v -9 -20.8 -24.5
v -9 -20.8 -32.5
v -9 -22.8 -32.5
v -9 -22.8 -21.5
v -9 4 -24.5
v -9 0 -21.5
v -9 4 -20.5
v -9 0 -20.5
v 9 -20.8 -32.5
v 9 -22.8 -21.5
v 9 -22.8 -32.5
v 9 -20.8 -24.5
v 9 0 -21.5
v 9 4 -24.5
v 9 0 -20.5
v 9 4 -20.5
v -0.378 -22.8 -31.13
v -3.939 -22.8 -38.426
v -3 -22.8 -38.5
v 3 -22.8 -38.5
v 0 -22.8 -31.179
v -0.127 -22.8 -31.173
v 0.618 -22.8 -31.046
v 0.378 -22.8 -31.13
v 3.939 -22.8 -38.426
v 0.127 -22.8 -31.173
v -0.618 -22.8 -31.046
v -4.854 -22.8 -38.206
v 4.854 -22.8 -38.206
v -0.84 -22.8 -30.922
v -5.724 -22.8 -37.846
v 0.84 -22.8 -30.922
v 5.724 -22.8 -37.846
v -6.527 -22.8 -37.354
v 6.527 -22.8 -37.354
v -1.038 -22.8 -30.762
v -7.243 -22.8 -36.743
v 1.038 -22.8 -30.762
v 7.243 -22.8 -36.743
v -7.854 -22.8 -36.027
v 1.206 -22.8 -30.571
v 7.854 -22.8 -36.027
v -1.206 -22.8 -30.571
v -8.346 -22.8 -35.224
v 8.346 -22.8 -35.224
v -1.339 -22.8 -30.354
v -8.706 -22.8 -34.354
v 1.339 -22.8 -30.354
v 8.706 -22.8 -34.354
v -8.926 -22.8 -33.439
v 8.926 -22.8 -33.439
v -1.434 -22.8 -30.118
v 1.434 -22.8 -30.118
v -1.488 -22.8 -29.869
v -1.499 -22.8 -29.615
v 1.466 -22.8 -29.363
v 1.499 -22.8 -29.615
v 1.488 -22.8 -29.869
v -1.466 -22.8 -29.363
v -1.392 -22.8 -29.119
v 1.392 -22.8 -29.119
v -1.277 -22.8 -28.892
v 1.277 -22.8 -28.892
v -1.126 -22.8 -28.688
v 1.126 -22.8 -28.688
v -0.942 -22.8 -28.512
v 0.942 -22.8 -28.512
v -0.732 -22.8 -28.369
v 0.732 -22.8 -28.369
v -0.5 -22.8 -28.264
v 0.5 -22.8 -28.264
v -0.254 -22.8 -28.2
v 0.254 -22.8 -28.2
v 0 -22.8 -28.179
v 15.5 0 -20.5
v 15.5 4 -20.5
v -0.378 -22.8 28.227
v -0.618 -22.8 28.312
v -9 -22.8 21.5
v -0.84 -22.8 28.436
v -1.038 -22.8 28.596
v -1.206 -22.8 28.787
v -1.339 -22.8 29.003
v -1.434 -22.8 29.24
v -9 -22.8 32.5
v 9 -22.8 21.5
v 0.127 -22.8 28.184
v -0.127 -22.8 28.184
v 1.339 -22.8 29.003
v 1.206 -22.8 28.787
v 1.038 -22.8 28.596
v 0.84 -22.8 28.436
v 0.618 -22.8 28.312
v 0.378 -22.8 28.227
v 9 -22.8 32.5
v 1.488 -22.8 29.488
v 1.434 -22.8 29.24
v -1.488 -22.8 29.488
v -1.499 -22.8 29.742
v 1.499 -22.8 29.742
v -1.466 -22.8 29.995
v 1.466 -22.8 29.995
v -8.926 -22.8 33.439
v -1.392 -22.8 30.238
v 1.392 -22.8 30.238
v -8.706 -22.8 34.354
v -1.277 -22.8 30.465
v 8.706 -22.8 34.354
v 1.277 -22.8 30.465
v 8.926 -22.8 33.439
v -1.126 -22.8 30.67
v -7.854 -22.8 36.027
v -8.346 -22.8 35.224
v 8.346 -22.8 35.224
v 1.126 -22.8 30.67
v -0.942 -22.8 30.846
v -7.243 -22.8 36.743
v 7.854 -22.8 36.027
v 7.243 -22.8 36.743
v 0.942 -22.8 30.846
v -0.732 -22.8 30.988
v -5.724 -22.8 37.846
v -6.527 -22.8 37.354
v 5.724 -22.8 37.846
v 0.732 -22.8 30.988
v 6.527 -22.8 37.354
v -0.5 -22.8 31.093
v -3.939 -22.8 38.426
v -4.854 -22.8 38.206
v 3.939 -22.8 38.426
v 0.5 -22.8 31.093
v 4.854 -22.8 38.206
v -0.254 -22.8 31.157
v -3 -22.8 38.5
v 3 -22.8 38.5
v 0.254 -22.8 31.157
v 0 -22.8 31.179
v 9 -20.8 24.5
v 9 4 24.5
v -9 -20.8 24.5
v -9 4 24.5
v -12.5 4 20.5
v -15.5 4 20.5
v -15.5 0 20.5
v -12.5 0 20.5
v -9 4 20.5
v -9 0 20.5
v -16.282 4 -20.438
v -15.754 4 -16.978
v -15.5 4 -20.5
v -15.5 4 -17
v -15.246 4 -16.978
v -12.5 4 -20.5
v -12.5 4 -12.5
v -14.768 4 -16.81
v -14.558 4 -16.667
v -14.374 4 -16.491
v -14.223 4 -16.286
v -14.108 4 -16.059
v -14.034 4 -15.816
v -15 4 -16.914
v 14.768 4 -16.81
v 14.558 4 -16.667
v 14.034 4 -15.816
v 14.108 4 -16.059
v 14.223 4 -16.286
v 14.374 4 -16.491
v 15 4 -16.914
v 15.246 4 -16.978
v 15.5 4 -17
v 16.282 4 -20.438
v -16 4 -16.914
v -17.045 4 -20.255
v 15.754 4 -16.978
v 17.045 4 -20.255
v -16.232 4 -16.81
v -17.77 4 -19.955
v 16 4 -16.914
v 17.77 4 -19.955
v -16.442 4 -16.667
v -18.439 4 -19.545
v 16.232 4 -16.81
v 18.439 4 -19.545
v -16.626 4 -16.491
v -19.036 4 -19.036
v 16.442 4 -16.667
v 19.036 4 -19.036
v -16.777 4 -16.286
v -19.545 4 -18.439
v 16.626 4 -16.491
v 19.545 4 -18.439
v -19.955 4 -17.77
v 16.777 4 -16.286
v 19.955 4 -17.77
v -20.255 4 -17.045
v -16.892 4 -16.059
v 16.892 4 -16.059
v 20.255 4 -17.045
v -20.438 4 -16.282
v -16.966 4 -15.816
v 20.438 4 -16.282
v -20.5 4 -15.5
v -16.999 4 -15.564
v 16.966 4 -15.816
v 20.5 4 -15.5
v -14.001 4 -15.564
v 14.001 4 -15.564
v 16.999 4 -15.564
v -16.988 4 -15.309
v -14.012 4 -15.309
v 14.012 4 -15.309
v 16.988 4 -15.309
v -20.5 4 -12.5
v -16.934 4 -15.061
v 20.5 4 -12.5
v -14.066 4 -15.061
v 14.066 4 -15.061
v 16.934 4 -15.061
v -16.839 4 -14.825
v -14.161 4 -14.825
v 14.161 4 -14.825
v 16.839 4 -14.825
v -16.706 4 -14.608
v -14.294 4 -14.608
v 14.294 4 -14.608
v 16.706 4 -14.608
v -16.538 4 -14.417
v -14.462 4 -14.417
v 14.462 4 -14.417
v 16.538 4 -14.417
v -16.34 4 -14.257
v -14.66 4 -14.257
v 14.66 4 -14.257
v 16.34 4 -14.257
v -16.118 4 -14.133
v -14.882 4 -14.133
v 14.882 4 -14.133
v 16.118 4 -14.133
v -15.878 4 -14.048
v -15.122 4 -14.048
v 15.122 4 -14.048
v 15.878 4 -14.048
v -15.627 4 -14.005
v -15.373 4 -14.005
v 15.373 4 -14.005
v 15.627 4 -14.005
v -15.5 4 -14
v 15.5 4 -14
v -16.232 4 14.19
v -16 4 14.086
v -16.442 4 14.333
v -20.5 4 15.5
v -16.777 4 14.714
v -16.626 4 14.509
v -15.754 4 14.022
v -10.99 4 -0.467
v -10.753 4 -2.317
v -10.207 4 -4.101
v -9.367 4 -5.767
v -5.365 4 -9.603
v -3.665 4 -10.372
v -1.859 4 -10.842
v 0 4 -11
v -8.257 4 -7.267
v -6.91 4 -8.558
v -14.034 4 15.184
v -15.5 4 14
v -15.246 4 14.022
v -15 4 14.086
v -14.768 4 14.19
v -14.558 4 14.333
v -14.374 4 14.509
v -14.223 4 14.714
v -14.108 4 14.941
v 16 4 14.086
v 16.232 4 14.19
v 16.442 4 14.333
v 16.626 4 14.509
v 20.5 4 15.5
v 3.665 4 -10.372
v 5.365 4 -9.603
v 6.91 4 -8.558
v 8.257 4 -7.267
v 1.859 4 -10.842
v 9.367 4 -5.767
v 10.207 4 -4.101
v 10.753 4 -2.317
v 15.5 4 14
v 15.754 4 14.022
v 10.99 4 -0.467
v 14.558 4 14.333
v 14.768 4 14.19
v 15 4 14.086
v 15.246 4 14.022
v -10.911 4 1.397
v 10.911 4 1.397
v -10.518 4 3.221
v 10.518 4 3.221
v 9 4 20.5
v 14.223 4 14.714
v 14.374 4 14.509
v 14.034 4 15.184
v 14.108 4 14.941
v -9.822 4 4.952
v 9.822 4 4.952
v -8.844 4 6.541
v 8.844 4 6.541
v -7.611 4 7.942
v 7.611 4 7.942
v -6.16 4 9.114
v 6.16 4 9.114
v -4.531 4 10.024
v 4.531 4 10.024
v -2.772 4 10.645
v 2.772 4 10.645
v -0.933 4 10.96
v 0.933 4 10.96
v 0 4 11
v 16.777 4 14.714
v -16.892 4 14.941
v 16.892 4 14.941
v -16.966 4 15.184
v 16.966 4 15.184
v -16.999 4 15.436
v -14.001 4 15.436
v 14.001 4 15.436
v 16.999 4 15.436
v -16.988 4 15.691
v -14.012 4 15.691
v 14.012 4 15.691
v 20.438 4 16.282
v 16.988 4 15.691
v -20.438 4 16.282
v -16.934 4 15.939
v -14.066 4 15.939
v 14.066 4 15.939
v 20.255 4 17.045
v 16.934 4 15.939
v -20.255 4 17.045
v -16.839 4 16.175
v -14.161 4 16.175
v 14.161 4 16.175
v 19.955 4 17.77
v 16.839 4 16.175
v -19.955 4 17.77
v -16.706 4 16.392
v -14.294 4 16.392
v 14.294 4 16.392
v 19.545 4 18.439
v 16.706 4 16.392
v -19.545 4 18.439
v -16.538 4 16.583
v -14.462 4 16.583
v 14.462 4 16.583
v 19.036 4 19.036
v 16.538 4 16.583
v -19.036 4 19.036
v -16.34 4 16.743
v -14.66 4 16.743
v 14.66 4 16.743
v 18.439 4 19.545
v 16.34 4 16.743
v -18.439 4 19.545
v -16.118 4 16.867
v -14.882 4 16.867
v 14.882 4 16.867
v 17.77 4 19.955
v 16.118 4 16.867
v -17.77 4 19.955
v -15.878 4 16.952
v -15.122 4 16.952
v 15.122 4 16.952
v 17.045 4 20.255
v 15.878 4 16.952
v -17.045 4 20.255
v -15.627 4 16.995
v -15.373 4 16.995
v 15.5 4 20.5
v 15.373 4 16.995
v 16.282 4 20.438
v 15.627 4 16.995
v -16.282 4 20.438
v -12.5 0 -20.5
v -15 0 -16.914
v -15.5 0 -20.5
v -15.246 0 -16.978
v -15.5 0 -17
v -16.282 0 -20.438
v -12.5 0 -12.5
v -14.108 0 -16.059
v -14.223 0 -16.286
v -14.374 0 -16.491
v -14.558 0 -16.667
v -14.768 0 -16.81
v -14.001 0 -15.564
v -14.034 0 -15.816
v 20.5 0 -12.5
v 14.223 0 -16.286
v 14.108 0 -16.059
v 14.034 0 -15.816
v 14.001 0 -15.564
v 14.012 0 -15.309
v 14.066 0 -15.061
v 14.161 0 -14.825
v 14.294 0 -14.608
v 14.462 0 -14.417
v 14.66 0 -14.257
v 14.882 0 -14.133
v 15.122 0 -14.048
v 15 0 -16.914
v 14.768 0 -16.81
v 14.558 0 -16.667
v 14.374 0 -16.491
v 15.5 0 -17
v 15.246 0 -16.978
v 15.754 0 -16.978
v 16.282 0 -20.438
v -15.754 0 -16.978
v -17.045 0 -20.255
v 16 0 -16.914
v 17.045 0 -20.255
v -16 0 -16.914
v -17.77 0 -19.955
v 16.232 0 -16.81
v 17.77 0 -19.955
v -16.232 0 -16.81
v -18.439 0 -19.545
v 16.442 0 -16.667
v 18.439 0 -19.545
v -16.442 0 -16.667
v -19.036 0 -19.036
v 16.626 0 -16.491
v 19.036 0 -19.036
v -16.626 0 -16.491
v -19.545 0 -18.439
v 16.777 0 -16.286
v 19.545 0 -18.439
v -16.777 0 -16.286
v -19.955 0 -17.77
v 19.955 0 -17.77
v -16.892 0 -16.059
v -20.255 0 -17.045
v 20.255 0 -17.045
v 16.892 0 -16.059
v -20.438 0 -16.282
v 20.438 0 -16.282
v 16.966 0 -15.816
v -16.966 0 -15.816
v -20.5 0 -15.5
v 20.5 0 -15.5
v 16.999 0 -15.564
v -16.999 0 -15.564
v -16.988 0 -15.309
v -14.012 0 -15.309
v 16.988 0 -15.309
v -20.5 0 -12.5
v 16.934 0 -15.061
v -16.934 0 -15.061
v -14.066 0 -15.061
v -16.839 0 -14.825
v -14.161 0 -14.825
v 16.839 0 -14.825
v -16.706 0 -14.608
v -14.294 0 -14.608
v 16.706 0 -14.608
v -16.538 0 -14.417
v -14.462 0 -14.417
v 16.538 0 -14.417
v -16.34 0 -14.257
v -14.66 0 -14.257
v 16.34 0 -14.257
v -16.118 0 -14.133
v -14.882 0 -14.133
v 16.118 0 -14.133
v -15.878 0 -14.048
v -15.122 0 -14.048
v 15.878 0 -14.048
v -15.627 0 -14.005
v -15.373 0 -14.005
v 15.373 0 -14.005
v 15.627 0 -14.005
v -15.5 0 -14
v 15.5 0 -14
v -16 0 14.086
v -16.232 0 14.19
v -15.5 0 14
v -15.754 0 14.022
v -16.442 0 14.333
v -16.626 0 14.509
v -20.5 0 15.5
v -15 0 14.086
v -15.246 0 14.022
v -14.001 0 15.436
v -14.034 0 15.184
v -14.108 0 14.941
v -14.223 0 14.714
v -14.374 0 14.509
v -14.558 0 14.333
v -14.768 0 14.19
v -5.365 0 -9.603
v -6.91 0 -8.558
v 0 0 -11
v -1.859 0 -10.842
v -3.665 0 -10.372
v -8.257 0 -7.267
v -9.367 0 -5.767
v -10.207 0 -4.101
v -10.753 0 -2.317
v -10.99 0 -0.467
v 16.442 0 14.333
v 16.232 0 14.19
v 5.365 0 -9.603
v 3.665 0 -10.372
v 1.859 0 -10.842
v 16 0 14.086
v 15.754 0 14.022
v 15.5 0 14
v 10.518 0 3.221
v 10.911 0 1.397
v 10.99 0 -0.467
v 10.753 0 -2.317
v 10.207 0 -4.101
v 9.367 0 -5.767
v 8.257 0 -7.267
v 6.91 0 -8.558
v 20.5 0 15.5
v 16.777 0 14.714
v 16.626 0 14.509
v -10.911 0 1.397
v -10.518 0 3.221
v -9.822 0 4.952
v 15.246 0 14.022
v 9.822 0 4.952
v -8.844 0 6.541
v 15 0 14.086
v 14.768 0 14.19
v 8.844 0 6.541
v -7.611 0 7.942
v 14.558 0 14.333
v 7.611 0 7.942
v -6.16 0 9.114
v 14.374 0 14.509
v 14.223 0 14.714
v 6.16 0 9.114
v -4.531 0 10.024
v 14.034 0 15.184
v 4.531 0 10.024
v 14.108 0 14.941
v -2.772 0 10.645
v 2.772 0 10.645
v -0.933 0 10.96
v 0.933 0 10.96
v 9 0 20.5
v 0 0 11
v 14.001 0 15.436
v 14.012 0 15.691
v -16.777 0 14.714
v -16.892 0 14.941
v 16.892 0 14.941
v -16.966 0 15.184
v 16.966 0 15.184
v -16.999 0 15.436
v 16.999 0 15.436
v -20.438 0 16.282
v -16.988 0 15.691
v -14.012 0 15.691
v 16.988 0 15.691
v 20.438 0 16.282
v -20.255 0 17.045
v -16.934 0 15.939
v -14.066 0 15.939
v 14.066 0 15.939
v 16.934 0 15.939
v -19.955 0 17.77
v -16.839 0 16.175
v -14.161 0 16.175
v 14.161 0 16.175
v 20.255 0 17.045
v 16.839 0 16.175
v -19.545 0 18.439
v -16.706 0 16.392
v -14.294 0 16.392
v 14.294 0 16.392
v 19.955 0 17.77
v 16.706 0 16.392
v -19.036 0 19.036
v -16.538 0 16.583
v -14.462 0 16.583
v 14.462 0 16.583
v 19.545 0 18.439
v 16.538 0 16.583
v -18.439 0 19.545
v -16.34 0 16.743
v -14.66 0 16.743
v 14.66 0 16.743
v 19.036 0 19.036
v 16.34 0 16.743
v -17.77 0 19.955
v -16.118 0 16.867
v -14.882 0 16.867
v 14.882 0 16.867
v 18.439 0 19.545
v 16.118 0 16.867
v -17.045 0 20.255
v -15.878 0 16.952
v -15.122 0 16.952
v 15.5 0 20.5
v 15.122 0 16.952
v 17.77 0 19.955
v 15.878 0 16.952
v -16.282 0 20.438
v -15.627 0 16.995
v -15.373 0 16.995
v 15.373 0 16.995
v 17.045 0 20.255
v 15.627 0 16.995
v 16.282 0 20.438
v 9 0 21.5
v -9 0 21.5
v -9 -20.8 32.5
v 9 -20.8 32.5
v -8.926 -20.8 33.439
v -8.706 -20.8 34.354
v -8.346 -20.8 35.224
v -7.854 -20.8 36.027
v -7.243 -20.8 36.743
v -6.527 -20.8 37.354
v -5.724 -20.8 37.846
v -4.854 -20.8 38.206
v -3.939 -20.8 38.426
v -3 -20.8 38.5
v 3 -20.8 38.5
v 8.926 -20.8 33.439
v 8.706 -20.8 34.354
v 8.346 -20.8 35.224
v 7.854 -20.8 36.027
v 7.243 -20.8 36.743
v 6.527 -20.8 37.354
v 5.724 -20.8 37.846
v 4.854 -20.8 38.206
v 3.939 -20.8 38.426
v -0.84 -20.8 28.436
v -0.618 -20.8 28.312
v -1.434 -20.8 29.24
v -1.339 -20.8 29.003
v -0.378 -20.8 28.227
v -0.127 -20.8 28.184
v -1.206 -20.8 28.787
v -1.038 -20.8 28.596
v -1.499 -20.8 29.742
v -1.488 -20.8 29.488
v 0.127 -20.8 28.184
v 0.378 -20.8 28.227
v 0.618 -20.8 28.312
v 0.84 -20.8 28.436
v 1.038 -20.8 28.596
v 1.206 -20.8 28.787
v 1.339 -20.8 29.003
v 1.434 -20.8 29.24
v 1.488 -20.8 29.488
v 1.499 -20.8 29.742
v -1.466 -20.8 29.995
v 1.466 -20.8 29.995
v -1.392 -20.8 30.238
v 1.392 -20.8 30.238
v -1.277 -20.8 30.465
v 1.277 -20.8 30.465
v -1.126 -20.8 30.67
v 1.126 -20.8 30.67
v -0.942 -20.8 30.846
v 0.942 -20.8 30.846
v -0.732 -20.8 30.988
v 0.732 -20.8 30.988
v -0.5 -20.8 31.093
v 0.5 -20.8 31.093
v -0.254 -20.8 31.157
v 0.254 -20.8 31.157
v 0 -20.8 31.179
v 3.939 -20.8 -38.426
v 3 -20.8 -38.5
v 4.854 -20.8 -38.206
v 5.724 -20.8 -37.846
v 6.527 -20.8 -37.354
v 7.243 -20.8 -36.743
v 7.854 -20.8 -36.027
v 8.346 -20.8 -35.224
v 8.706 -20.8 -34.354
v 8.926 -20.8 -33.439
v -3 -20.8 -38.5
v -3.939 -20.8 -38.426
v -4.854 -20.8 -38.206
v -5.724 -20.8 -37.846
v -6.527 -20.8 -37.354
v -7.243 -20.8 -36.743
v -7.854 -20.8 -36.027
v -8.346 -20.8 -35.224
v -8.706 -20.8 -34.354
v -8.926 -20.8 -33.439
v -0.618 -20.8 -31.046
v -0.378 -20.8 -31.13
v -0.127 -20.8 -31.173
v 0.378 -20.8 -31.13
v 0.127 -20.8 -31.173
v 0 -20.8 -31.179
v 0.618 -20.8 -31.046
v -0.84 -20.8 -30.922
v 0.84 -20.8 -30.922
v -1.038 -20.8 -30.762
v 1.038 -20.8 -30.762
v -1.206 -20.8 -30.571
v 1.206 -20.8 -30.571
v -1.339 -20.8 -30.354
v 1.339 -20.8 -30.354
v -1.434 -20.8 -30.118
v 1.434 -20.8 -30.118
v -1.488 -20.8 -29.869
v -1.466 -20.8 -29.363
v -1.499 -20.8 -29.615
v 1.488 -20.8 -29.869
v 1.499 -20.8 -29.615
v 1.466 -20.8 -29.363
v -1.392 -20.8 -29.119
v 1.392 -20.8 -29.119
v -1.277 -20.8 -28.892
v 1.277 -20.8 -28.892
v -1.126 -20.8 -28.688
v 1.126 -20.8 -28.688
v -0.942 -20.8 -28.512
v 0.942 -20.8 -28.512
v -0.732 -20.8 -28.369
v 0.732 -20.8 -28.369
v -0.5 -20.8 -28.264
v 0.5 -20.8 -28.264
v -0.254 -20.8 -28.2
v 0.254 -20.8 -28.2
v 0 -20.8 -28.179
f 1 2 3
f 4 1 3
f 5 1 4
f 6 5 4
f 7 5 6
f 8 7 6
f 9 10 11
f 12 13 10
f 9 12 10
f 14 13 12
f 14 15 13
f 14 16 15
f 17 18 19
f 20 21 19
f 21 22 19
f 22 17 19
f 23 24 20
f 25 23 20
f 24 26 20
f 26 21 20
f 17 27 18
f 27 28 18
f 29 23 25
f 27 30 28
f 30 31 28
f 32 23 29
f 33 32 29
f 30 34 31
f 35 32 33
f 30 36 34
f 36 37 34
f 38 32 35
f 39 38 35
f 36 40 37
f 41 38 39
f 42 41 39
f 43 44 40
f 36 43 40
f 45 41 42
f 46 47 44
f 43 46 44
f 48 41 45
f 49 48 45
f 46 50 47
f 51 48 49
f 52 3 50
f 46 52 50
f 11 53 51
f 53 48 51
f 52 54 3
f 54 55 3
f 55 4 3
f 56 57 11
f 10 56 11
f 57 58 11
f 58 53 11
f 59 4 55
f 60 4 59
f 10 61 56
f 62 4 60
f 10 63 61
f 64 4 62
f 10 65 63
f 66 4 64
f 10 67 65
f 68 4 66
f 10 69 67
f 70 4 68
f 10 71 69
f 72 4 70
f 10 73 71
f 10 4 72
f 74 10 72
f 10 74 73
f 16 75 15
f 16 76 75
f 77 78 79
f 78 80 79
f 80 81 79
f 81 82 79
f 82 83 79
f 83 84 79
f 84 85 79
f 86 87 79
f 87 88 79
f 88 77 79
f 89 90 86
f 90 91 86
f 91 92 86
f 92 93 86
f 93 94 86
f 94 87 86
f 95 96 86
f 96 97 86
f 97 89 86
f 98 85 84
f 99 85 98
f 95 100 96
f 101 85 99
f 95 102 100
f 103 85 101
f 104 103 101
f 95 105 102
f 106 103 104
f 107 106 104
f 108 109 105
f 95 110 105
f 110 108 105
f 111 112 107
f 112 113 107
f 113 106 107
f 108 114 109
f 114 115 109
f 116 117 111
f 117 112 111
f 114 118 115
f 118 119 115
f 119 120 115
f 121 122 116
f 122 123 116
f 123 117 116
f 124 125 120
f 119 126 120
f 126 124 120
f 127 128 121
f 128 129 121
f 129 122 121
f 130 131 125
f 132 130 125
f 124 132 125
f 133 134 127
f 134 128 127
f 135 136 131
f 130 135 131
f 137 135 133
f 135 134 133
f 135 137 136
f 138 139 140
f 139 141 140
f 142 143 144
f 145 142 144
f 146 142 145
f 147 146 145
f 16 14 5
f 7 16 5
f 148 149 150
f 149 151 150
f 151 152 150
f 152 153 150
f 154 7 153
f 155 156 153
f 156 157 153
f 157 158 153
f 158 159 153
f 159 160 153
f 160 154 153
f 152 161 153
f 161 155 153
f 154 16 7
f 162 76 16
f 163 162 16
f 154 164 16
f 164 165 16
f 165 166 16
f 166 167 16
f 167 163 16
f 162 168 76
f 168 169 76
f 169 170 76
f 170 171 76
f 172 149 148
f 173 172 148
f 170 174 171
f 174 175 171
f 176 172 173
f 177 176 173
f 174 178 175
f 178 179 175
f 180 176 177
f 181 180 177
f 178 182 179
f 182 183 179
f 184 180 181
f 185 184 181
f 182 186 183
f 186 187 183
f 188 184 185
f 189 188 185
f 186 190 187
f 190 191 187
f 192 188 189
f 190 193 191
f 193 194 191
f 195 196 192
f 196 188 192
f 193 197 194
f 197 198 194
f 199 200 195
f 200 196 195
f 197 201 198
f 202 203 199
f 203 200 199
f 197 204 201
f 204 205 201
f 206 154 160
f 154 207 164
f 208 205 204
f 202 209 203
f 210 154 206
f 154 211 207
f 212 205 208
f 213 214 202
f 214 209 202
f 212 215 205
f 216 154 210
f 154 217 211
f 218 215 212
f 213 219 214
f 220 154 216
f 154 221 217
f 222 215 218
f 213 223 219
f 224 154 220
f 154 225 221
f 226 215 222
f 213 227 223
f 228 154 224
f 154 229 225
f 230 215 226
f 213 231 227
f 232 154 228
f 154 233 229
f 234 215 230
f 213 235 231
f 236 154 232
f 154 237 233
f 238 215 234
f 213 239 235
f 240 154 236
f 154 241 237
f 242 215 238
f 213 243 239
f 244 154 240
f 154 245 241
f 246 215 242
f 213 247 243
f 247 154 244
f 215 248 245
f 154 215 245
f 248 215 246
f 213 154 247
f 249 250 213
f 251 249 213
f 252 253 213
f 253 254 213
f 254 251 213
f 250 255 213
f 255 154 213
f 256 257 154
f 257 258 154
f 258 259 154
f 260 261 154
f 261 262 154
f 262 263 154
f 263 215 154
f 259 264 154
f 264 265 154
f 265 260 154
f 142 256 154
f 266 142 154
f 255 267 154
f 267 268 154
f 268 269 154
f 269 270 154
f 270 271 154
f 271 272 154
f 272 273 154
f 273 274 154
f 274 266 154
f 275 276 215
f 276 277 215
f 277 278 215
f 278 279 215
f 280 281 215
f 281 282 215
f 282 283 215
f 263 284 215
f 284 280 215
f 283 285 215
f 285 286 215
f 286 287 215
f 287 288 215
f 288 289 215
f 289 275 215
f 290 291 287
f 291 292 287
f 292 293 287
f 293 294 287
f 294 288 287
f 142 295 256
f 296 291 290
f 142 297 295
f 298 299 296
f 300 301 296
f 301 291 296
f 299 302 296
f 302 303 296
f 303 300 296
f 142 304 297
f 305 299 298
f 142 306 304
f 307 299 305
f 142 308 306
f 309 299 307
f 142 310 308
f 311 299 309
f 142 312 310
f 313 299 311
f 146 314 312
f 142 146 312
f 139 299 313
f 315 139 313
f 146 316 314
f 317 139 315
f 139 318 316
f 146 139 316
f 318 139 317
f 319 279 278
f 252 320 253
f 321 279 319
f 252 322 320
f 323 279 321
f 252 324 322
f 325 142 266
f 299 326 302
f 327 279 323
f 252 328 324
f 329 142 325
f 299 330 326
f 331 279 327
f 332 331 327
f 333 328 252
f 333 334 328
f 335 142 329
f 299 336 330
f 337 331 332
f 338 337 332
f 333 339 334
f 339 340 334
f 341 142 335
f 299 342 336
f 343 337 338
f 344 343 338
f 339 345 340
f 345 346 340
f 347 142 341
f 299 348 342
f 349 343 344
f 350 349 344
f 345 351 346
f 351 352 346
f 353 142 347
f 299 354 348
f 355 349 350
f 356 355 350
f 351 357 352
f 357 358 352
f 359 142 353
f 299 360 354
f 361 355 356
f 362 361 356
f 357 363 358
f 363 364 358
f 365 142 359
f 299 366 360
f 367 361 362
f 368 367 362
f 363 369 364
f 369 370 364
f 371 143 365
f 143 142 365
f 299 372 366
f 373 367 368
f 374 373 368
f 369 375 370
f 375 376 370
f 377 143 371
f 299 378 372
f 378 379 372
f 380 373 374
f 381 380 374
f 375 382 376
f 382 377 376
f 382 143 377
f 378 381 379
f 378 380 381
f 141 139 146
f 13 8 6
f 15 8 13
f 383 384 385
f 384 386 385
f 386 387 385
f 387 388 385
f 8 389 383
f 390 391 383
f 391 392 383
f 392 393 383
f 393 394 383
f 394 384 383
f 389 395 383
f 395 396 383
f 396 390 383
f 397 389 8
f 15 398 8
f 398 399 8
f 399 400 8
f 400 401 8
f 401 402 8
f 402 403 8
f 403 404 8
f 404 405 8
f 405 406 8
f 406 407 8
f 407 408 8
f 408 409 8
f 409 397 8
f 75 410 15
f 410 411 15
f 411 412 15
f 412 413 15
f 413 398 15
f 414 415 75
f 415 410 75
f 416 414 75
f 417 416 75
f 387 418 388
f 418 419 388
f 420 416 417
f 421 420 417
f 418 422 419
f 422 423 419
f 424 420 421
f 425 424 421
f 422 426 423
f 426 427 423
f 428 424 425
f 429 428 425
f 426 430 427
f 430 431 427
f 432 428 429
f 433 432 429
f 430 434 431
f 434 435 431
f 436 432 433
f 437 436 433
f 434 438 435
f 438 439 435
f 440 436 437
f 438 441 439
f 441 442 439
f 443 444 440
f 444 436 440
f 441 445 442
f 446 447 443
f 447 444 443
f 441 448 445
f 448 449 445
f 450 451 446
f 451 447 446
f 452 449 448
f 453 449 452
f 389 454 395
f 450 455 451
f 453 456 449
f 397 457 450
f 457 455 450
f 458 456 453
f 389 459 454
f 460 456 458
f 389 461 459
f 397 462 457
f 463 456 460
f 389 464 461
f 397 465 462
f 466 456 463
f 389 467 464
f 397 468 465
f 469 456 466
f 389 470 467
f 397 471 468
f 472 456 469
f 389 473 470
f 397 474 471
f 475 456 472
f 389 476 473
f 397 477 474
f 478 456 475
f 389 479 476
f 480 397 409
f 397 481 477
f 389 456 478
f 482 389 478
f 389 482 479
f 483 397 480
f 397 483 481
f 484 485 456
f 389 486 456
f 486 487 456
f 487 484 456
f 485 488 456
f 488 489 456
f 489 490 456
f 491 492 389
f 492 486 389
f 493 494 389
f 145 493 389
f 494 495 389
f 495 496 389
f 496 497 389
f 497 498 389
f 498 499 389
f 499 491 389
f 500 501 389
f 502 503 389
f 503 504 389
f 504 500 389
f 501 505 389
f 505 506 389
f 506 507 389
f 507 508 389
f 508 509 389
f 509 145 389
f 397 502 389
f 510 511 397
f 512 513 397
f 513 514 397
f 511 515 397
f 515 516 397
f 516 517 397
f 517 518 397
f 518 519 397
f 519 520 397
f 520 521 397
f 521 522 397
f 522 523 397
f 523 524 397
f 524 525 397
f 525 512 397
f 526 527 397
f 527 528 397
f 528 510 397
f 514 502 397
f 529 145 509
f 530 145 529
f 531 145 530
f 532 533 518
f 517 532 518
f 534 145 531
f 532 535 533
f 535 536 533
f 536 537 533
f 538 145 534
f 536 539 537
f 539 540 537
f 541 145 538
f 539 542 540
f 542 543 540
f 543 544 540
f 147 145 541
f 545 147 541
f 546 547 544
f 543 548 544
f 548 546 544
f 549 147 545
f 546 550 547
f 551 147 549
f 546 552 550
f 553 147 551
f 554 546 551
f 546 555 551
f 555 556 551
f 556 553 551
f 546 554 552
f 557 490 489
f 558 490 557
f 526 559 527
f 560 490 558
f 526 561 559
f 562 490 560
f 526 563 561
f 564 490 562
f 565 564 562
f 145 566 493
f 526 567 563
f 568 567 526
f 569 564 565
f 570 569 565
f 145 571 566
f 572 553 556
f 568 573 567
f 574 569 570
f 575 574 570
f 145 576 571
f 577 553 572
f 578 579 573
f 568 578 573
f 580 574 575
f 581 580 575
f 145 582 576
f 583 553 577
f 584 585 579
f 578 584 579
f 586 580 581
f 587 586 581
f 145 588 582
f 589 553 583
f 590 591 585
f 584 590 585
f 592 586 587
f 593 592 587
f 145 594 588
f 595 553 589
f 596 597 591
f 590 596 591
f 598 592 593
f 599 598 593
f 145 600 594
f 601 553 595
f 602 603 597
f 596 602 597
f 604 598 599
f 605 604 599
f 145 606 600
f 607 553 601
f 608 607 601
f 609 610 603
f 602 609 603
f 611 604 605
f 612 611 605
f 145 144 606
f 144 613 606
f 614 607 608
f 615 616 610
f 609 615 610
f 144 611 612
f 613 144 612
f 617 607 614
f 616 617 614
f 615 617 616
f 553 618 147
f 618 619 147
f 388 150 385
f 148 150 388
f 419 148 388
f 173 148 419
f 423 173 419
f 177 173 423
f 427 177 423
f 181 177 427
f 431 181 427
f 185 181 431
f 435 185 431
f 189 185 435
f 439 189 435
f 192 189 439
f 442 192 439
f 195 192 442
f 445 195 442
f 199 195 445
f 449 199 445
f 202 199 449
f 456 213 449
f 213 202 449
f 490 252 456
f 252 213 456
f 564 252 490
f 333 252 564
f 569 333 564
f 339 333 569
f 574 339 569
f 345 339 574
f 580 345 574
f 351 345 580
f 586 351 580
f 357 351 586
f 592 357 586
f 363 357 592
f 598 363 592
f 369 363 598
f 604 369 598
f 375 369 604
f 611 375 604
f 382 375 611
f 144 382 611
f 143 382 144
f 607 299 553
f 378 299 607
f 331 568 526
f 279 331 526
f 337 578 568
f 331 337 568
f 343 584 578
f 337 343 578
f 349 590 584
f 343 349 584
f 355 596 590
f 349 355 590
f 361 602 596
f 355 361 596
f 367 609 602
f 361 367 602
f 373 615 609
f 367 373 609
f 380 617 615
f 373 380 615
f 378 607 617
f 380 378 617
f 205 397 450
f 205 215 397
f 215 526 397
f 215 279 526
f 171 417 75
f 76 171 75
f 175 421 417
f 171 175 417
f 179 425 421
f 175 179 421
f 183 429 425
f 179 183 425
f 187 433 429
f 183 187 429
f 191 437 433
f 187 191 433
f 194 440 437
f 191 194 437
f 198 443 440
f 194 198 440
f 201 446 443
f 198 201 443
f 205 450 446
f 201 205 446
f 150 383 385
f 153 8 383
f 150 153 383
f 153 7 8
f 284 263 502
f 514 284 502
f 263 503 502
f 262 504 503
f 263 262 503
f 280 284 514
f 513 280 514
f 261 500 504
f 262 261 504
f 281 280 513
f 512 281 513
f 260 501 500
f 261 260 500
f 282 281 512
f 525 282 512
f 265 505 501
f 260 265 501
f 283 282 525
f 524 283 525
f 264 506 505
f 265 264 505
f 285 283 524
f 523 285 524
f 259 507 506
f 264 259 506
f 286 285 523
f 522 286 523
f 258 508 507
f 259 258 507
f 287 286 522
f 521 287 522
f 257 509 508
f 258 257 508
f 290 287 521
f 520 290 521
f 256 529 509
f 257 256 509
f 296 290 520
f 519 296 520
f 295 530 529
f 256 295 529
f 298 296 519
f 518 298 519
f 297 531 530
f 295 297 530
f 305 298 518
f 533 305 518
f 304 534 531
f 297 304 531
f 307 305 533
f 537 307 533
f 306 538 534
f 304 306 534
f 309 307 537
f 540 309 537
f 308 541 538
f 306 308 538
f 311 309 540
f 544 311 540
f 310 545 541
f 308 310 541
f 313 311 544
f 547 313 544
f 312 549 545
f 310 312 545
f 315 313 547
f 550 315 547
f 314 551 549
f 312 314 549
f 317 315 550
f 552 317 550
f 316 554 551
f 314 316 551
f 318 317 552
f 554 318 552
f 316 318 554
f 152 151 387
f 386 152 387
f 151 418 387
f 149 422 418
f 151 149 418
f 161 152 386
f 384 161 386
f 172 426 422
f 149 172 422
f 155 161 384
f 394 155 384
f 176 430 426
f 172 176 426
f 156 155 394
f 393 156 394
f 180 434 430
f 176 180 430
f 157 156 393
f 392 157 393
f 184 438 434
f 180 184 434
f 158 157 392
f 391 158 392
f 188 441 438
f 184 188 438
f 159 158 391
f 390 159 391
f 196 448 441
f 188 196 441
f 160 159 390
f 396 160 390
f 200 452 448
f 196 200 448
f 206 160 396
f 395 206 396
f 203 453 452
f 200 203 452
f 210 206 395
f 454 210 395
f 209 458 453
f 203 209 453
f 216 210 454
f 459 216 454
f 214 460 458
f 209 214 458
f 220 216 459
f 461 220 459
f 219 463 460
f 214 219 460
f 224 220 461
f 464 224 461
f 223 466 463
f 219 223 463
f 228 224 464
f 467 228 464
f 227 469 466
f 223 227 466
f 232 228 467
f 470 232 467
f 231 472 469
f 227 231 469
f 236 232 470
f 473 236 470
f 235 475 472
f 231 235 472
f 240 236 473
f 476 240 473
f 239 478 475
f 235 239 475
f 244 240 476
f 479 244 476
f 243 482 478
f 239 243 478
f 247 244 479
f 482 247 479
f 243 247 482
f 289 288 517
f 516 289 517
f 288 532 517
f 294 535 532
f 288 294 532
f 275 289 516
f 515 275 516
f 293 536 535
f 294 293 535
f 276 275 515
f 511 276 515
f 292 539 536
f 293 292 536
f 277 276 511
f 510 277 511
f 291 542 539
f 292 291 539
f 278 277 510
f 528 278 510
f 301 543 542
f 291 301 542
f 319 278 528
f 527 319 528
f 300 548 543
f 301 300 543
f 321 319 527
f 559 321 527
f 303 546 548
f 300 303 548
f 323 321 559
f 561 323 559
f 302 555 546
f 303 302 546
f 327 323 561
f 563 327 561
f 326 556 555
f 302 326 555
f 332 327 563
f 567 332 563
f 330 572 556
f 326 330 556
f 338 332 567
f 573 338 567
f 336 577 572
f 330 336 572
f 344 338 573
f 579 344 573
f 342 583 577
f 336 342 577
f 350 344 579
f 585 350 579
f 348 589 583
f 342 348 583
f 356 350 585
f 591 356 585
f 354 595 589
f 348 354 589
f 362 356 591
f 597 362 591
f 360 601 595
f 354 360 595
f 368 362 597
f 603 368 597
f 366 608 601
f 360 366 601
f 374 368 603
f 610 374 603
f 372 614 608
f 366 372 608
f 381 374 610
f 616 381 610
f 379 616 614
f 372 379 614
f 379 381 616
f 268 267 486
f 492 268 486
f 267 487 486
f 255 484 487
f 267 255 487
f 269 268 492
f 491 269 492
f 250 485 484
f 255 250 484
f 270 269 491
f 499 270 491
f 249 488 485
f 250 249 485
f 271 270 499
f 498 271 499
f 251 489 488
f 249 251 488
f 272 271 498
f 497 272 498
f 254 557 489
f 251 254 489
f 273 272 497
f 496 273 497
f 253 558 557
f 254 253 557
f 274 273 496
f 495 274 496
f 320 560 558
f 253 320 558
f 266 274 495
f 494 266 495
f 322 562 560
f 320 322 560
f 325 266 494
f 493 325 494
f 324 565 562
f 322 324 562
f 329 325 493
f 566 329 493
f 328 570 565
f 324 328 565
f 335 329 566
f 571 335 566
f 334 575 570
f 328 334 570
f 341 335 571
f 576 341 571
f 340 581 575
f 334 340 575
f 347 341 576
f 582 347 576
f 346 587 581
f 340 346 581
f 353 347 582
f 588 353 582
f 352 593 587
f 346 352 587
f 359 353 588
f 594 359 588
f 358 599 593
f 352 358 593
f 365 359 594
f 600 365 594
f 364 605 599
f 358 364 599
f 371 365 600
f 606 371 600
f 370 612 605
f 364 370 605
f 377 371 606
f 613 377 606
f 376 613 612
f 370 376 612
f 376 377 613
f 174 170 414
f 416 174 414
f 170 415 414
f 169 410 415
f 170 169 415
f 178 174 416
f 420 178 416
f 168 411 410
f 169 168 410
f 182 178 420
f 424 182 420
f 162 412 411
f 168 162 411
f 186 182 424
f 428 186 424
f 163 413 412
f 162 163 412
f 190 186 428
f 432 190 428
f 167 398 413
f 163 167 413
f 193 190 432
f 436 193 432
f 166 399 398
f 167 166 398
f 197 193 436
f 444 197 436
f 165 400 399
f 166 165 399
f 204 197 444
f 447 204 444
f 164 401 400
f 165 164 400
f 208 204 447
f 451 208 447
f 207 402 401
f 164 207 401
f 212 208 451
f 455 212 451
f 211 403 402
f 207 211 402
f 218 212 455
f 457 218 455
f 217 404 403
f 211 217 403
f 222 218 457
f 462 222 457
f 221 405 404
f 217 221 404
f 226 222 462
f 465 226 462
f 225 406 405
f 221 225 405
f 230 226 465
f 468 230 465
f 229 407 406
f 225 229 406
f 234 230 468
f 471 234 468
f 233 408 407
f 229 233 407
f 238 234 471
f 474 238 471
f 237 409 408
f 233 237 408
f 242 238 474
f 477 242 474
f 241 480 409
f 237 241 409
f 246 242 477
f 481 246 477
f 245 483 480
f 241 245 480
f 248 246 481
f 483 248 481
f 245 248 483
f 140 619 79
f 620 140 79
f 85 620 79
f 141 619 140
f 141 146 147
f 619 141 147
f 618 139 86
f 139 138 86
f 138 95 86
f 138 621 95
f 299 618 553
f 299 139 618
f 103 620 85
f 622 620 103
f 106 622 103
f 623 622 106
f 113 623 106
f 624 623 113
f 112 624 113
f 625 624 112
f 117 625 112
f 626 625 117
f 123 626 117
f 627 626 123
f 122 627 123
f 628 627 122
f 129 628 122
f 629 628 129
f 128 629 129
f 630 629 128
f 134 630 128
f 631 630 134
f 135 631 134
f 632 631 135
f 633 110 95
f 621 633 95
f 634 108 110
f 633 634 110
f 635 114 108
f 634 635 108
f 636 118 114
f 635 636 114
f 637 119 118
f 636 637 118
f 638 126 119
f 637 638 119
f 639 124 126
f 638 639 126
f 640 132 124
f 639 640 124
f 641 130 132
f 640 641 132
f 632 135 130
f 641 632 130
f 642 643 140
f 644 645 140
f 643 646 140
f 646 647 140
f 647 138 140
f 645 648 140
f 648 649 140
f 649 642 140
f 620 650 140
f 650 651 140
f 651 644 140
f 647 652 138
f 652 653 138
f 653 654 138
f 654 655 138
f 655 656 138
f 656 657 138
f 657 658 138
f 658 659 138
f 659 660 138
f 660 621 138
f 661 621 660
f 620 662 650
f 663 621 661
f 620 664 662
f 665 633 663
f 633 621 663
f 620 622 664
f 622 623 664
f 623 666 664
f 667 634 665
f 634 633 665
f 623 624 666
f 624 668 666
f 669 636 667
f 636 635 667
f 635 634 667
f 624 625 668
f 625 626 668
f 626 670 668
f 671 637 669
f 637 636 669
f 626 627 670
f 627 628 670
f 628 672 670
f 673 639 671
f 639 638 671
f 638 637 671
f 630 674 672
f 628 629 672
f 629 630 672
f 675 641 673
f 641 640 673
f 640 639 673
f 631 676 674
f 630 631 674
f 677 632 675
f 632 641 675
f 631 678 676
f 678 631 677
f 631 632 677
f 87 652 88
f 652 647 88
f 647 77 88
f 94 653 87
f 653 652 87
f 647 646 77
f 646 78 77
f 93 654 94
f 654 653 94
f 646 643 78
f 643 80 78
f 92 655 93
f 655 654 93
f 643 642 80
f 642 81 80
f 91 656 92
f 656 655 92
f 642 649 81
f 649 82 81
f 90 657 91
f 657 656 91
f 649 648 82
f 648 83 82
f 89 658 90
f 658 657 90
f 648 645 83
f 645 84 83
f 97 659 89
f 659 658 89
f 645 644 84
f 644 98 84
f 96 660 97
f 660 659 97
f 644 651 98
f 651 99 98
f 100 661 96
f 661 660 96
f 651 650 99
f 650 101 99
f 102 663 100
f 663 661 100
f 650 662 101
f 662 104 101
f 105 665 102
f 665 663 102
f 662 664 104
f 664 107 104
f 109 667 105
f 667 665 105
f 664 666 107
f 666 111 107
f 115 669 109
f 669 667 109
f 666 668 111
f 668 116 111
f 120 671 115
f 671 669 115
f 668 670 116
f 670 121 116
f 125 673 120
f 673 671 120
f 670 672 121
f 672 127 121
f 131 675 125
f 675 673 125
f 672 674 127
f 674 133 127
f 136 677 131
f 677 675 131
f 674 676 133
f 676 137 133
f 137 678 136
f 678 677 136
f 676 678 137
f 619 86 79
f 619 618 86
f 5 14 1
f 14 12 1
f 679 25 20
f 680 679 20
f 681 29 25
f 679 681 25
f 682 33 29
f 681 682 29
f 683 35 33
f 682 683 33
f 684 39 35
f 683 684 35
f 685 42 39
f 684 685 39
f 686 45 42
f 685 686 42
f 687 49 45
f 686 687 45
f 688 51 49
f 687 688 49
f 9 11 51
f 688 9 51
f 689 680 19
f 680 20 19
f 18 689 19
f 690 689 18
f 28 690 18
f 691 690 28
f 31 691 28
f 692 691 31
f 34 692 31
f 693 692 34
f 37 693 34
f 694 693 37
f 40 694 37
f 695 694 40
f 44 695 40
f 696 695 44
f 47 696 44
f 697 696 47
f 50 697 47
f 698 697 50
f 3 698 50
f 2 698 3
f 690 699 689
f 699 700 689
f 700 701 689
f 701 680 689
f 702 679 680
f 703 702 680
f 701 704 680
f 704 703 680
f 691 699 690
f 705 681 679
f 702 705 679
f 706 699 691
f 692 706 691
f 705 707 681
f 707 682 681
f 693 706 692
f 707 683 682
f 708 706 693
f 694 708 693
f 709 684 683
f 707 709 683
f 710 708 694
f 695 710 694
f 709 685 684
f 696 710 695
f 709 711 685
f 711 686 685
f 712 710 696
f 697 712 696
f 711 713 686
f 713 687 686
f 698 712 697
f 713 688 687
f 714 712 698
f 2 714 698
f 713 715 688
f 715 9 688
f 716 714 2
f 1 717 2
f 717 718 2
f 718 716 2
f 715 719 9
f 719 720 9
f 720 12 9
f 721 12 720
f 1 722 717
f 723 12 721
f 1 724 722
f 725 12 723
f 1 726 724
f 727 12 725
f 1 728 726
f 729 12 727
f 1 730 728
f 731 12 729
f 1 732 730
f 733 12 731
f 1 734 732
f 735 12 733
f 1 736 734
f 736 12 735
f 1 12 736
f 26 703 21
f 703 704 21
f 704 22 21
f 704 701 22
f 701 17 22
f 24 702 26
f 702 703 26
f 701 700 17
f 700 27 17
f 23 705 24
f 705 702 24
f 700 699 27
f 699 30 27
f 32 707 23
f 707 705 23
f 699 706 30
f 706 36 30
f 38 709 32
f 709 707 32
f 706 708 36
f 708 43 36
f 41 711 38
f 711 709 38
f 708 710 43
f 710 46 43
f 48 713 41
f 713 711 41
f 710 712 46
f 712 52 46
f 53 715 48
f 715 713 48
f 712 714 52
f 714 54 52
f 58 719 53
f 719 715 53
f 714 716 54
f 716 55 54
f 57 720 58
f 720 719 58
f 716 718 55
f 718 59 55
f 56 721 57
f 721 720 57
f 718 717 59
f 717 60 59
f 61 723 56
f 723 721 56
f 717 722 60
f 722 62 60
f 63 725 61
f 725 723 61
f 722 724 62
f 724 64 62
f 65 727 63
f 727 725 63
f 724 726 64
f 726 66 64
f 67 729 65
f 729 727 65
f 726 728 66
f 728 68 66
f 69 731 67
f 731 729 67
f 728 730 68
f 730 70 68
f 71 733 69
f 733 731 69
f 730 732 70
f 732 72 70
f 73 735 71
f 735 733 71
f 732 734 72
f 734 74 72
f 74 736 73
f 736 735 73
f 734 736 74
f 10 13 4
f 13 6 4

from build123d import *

# Parameters (mm, degrees)
SKETCH_2_R             = 11
SKETCH_2_R_2           = 1.5
EXTRUDE_483_DEPTH      = 4
SKETCH_3_W             = 18
SKETCH_3_H             = 26.8
EXTRUDE_726_DEPTH      = 4
EXTRUDE_922_DEPTH      = 2
SKETCH_5_R             = 1.5
CUT_EXTRUDE_1097_DEPTH = 51.175093423
SKETCH_7_W             = 18
SKETCH_7_H             = 22.8
CUT_EXTRUDE_1_DEPTH    = 1


with BuildPart() as part:
    # Эскиз2 → Extrude 483 (new body)
    with BuildSketch(Plane(origin=(0, 0, 0), x_dir=(1, 0, 0), z_dir=(0, 1, 0))):
        with BuildLine():
            Line((-15.5, -20.5), (15.5, -20.5))
            ThreePointArc((15.5, -20.5), (19.035533906, -19.035533906), (20.5, -15.5))
            Line((20.5, -15.5), (20.5, 15.5))
            ThreePointArc((20.5, 15.5), (19.035533906, 19.035533906), (15.5, 20.5))
            Line((15.5, 20.5), (-15.5, 20.5))
            ThreePointArc((-15.5, 20.5), (-19.035533906, 19.035533906), (-20.5, 15.5))
            Line((-20.5, 15.5), (-20.5, -15.5))
            ThreePointArc((-20.5, -15.5), (-19.035533906, -19.035533906), (-15.5, -20.5))
        make_face()
        with Locations(Location((0, 0, 0), (0, 0, 270))):
            Circle(SKETCH_2_R, mode=Mode.SUBTRACT)
        with Locations(Location((-15.5, 15.5, 0), (0, 0, 270))):
            Circle(SKETCH_2_R_2, mode=Mode.SUBTRACT)
        with Locations(Location((15.5, -15.5, 0), (0, 0, 90))):
            Circle(SKETCH_2_R_2, mode=Mode.SUBTRACT)
        with Locations(Location((-15.5, -15.5, 0), (0, 0, 90))):
            Circle(SKETCH_2_R_2, mode=Mode.SUBTRACT)
        with Locations(Location((15.5, 15.5, 0), (0, 0, 270))):
            Circle(SKETCH_2_R_2, mode=Mode.SUBTRACT)
    extrude(amount=EXTRUDE_483_DEPTH)

    # Эскиз3 → Extrude 726 (add)
    with BuildSketch(Plane.XY.offset(20.5)):
        with Locations((0, -9.4)):
            Rectangle(SKETCH_3_W, SKETCH_3_H)
    extrude_726 = extrude(amount=EXTRUDE_726_DEPTH)

    # Эскиз4 → Extrude 922 (add)
    with BuildSketch(Plane.XZ.offset(22.8)):
        with BuildLine():
            Line((9, 24.5), (-9, 24.5))
            Line((-9, 24.5), (-9, 32.5))
            ThreePointArc((-9, 32.5), (-7.242640687, 36.742640687), (-3, 38.5))
            Line((-3, 38.5), (3, 38.5))
            ThreePointArc((3, 38.5), (7.242640687, 36.742640687), (9, 32.5))
            Line((9, 32.5), (9, 24.5))
        make_face()
    extrude_922 = extrude(amount=-EXTRUDE_922_DEPTH)

    # Эскиз5 → Cut-Extrude 1097 (cut, through all)
    with BuildSketch(Plane(origin=(0, -20.8, 0), x_dir=(1, 0, 0), z_dir=(0, 1, 0))):
        with Locations(Location((0, -29.678729535, 0), (0, 0, 270))):
            Circle(SKETCH_5_R)
    cut_extrude_1097 = extrude(amount=-CUT_EXTRUDE_1097_DEPTH, mode=Mode.SUBTRACT)

    # Эскиз7 → Вырез-Вытянуть1 (cut)
    with BuildSketch(Plane(origin=(0, 0, 20.5), x_dir=(-1, 0, 0), z_dir=(0, 0, -1))):
        with Locations((0, -11.4)):
            Rectangle(SKETCH_7_W, SKETCH_7_H)
    cut_extrude_1 = extrude(amount=-CUT_EXTRUDE_1_DEPTH, mode=Mode.SUBTRACT)

    # Зеркальное отражение1: Extrude 726, Extrude 922, Cut-Extrude 1097, Вырез-Вытянуть1 across plane
    add(extrude_726.mirror(Plane.XY))
    add(extrude_922.mirror(Plane.XY))
    add(cut_extrude_1097.mirror(Plane.XY), mode=Mode.SUBTRACT)
    add(cut_extrude_1.mirror(Plane.XY), mode=Mode.SUBTRACT)


solid = part.part
